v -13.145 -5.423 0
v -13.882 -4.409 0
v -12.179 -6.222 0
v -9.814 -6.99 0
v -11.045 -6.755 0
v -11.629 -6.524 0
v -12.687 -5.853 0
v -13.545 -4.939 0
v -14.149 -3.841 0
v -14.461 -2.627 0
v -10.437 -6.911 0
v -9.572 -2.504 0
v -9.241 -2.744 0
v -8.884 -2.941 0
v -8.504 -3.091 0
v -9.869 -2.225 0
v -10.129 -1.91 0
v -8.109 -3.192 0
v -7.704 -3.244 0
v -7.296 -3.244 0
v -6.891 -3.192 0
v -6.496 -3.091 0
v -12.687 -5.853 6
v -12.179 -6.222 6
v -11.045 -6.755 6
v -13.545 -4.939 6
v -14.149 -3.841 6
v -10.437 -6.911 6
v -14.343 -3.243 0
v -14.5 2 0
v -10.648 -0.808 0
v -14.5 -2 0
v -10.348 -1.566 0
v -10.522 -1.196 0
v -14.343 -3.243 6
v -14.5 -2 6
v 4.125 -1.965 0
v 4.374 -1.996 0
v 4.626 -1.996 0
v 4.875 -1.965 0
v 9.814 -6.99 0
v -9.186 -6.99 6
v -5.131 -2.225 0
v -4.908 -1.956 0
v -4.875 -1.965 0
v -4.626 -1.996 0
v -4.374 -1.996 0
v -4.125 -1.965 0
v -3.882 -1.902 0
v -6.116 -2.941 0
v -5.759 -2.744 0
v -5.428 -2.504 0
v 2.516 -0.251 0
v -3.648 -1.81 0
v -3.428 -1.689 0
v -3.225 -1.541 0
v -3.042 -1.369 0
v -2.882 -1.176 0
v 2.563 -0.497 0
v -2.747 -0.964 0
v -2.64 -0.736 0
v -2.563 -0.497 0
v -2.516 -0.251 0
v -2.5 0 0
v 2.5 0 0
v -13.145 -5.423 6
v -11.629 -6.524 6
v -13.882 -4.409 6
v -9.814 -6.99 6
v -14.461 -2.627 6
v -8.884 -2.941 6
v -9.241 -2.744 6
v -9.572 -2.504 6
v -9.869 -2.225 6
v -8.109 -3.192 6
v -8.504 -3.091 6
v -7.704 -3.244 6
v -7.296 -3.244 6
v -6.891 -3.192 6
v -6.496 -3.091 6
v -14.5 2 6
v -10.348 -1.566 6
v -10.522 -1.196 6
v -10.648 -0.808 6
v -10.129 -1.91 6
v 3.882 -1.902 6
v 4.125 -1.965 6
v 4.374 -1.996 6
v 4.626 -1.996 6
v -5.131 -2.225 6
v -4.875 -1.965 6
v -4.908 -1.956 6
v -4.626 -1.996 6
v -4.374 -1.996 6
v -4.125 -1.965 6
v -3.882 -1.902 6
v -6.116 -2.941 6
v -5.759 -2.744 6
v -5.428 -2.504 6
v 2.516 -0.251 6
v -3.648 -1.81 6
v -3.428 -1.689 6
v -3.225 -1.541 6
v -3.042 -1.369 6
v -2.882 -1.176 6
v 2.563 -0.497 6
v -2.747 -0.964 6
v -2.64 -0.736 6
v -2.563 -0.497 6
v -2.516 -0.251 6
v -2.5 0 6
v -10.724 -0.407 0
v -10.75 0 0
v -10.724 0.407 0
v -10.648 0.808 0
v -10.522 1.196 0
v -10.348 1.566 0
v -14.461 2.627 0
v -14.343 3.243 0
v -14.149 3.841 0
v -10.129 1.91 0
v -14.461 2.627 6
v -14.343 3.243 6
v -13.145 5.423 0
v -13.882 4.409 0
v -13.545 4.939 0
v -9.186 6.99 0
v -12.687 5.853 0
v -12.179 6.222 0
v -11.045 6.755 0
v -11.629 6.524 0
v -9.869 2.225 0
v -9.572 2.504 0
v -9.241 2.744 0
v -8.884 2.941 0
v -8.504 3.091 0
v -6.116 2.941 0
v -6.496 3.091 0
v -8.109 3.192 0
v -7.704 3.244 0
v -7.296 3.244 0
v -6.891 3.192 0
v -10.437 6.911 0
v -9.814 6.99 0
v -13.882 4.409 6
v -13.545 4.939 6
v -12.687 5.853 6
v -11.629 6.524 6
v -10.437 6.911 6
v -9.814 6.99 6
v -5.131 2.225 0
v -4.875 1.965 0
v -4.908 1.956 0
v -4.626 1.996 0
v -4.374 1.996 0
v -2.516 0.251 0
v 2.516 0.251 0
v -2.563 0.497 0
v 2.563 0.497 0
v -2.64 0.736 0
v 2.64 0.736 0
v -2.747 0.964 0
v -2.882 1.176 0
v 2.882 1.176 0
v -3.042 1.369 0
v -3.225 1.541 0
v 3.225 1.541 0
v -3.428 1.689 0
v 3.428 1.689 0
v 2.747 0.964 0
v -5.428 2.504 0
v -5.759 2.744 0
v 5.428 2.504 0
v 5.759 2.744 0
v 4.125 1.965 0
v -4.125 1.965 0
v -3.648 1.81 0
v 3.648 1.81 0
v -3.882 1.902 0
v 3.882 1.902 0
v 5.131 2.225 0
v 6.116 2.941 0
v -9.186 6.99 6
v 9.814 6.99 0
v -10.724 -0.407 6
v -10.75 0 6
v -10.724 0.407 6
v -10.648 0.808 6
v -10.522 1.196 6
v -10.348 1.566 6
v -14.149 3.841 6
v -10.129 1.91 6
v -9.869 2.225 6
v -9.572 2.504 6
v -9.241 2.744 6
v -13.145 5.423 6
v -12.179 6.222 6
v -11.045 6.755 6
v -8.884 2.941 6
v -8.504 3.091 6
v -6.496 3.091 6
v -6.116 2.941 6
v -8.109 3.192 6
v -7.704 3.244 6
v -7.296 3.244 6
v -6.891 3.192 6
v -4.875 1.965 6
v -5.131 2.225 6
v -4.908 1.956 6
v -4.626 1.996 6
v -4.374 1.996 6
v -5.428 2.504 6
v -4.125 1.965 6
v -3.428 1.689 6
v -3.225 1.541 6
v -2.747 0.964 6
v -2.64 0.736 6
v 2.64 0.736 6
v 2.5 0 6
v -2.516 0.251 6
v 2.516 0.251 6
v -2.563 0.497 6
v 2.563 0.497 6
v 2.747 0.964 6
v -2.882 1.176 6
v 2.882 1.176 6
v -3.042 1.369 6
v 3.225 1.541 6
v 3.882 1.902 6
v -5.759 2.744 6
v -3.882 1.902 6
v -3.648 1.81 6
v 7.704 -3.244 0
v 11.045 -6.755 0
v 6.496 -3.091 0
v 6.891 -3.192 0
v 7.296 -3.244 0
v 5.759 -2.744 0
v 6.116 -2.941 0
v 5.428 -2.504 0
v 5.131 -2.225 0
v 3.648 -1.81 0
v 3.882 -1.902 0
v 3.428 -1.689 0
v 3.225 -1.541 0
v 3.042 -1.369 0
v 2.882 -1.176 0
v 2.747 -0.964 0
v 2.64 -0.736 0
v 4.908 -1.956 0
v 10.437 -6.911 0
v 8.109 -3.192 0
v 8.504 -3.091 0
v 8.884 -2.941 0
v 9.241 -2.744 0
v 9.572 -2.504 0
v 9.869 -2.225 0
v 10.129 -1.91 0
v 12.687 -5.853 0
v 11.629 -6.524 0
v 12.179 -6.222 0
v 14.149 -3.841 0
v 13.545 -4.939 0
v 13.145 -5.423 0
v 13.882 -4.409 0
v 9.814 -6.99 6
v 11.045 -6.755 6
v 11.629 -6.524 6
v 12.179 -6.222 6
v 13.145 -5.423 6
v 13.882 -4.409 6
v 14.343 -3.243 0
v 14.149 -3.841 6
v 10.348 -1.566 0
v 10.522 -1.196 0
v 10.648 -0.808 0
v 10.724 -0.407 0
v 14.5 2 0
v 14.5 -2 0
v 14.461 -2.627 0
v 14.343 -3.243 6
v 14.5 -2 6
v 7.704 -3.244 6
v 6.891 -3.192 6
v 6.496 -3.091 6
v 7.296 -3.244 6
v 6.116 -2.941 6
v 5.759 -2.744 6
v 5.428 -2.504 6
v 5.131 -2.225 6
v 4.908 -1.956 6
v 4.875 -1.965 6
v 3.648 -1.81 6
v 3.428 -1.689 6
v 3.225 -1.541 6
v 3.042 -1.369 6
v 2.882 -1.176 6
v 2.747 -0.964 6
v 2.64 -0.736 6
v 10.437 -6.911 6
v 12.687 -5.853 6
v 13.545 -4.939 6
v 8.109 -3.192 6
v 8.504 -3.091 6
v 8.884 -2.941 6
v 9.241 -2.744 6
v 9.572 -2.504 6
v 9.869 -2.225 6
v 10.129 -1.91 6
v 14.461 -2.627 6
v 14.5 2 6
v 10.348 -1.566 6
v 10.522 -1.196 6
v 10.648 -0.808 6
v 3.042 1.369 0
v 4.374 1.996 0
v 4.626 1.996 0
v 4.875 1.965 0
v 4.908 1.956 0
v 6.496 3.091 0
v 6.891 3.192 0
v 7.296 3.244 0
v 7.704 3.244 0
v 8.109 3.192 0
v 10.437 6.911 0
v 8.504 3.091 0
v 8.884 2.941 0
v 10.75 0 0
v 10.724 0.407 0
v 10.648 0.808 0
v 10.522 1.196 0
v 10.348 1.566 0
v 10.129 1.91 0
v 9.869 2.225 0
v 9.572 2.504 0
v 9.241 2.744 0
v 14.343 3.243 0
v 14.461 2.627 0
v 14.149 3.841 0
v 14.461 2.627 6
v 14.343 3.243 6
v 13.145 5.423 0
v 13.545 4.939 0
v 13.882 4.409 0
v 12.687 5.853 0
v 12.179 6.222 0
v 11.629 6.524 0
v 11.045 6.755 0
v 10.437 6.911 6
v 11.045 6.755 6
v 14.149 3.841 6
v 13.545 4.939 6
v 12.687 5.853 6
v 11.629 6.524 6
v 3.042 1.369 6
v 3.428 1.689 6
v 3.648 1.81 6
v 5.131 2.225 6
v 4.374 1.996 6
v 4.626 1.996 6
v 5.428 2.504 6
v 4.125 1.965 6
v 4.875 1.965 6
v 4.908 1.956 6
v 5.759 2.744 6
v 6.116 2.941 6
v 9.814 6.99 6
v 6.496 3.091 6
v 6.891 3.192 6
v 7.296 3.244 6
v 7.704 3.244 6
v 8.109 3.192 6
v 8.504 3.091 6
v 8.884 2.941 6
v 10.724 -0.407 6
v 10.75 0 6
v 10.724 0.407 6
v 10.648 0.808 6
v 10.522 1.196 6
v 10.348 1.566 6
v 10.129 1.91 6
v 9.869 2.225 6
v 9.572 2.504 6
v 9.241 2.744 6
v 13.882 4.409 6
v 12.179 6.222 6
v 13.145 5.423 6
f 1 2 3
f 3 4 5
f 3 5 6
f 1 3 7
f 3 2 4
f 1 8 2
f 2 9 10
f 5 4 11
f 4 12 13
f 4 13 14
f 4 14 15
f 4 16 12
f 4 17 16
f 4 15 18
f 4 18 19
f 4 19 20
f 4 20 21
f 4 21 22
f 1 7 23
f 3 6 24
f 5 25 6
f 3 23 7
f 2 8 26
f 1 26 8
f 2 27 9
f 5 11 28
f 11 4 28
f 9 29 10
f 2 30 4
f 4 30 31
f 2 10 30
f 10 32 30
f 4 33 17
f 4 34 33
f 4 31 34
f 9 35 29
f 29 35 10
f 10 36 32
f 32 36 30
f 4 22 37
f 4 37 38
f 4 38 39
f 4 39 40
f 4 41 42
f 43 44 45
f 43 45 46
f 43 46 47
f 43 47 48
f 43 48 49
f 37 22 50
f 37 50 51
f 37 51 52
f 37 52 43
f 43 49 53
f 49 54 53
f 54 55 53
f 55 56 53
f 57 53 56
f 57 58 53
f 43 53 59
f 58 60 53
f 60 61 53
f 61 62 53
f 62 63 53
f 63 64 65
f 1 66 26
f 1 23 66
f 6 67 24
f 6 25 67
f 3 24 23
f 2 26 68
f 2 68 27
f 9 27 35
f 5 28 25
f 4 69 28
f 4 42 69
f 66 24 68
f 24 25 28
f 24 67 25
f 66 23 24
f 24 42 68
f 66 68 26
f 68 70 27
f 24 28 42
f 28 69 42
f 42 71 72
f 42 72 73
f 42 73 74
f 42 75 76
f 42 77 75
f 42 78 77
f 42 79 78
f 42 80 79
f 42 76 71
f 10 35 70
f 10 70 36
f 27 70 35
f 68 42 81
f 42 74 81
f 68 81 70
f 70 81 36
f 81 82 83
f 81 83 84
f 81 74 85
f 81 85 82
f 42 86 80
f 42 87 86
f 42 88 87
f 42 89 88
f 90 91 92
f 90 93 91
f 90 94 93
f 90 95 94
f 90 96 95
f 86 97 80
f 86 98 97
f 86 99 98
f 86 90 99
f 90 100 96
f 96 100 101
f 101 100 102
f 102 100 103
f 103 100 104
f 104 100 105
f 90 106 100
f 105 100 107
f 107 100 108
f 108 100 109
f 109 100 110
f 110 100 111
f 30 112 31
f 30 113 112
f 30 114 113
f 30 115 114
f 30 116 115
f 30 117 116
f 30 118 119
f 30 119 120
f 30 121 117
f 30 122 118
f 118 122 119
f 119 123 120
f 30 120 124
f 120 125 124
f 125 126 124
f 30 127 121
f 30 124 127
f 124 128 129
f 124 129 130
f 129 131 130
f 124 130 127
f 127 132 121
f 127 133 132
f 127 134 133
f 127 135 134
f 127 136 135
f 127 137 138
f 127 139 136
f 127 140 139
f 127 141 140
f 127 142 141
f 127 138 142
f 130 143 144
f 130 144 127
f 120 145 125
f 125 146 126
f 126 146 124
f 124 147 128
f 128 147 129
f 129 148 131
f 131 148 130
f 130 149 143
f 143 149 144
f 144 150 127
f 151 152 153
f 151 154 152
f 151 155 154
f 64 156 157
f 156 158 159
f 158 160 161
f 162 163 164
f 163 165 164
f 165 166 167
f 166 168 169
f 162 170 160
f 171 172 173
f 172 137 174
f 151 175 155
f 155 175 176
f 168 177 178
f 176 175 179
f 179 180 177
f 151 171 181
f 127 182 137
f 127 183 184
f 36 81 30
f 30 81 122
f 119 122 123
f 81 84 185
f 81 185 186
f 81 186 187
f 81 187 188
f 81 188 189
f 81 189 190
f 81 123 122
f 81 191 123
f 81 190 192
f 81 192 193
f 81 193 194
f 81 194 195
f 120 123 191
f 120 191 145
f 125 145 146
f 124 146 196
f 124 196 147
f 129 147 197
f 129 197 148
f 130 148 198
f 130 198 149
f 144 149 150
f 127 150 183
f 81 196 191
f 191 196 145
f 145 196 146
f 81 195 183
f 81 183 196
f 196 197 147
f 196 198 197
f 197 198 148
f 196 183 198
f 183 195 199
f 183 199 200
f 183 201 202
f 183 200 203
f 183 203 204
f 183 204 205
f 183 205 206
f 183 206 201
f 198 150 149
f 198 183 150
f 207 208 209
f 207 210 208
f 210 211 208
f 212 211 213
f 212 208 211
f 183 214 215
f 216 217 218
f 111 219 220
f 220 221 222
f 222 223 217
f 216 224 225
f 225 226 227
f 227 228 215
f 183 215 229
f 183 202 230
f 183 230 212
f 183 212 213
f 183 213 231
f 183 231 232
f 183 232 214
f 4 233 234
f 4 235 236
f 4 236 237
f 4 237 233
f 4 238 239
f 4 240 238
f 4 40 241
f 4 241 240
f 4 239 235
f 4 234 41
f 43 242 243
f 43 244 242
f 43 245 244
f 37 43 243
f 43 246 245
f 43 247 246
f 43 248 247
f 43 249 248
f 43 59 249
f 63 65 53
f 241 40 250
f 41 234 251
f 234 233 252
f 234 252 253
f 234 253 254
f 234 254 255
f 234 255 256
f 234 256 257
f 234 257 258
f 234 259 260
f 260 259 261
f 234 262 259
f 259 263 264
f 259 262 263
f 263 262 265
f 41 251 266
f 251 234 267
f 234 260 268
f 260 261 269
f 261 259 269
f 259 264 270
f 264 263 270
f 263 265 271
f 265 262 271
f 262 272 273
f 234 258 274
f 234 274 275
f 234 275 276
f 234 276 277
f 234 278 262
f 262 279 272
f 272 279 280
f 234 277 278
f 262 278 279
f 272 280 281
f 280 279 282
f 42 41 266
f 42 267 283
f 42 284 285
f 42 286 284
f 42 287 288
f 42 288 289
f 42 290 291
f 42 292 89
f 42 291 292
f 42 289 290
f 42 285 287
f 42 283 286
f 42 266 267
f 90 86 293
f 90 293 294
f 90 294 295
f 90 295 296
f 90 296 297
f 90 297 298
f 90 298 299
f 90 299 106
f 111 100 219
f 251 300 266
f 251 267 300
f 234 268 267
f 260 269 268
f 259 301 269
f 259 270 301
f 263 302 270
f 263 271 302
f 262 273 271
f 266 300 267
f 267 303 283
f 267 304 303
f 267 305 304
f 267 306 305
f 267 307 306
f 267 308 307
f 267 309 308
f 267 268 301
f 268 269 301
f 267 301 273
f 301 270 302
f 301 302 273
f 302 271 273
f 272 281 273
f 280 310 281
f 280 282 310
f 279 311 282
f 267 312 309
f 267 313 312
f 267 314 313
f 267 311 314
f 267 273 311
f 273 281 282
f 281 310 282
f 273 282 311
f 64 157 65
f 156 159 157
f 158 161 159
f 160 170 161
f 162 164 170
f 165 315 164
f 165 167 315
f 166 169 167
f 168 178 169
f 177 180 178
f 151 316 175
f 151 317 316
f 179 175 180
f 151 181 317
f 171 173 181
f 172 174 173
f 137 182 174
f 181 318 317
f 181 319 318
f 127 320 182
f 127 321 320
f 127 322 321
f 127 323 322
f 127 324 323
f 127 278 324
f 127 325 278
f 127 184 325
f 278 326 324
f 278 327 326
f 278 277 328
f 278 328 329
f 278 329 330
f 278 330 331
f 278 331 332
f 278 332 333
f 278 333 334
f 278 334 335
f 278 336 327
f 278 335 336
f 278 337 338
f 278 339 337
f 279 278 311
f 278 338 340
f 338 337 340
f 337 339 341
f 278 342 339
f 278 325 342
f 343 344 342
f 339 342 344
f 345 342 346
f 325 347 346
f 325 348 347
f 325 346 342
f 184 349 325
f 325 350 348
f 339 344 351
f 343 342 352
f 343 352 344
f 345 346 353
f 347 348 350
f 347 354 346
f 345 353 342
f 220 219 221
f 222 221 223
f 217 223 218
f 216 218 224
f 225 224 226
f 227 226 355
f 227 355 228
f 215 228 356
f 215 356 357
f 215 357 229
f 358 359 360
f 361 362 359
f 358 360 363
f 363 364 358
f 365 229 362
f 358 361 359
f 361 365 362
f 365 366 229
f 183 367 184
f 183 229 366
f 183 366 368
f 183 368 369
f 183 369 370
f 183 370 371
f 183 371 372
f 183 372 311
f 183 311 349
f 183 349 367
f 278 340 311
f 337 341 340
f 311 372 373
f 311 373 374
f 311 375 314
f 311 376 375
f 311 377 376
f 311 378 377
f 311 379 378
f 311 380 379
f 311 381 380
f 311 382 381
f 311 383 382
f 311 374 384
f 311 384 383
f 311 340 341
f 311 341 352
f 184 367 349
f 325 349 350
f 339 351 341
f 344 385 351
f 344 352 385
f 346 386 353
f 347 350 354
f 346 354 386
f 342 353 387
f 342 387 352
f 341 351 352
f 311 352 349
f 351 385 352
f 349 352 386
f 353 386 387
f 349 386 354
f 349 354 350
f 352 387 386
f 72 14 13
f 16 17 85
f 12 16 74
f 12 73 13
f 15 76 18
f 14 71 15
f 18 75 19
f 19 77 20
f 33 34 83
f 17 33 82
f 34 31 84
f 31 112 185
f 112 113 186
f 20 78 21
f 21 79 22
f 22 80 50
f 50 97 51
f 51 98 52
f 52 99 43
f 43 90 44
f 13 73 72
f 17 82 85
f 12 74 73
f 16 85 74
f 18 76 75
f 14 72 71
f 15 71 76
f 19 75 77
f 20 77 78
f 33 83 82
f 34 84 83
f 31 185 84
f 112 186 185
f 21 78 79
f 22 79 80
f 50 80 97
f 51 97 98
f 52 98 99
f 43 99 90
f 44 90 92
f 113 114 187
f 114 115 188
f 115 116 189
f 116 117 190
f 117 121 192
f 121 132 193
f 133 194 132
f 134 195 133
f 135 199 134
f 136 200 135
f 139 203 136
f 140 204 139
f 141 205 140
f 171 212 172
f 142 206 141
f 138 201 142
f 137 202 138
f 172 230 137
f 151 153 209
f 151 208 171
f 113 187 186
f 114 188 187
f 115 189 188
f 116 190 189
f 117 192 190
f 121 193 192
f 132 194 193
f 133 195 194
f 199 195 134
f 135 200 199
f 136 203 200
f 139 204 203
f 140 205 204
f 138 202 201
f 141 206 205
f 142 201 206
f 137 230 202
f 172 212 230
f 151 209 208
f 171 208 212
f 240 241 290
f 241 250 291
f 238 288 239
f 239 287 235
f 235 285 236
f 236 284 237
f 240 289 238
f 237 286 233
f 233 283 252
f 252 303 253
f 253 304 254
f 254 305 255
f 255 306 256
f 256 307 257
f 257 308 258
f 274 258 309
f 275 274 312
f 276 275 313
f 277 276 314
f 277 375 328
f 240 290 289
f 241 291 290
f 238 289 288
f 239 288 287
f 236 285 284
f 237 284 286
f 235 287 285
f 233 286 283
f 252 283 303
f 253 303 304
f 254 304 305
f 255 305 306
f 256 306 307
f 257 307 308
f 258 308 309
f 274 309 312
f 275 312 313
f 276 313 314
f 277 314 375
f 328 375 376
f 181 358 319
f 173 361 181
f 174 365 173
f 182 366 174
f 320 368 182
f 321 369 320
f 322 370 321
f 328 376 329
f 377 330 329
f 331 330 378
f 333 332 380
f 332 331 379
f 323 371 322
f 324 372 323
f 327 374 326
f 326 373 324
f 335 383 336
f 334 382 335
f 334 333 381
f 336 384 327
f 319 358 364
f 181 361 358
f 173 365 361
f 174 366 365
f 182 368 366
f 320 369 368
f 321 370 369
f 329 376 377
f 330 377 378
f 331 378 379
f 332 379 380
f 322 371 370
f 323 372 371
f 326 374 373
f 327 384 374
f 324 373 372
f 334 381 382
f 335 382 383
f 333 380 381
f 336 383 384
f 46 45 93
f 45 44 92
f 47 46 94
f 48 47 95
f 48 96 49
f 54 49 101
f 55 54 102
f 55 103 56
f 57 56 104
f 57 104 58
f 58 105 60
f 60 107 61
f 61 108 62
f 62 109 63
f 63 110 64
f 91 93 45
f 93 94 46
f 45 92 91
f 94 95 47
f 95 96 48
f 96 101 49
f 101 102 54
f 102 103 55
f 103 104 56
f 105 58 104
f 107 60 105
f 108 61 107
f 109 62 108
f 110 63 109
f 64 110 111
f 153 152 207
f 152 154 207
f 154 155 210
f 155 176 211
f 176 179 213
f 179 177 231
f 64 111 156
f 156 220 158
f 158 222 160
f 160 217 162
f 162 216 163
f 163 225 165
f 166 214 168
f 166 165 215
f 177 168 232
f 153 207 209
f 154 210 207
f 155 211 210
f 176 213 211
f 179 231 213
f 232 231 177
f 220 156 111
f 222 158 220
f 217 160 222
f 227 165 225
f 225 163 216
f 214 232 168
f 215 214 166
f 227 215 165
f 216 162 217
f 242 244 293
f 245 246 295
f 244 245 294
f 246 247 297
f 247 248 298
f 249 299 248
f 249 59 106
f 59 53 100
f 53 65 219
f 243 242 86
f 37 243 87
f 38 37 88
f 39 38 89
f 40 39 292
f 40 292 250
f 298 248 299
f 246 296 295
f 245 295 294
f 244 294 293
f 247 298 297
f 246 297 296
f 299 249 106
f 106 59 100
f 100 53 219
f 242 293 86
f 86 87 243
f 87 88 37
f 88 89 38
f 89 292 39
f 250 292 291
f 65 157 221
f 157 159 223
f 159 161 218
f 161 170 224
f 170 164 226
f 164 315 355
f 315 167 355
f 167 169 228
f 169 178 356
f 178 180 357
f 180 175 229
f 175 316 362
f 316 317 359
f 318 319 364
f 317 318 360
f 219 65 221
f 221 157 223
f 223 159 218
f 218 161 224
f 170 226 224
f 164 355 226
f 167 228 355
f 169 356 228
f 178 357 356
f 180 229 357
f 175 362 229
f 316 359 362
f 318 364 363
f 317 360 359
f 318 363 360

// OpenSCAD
$fn = 50;

difference() {
	union() {
		hull() {
			translate(v = [-9.5, 2.0, 0]) {
				cylinder(h = 6, r = 5);
			}
			translate(v = [9.5, 2.0, 0]) {
				cylinder(h = 6, r = 5);
			}
			translate(v = [-9.5, -2.0, 0]) {
				cylinder(h = 6, r = 5);
			}
			translate(v = [9.5, -2.0, 0]) {
				cylinder(h = 6, r = 5);
			}
		}
	}
	union() {
		translate(v = [-7.5, 0.0, -100.0]) {
			cylinder(h = 200, r = 3.25);
		}
		translate(v = [7.5, 0.0, -100.0]) {
			cylinder(h = 200, r = 3.25);
		}
		translate(v = [-7.5, 0.0, -100.0]) {
			cylinder(h = 200, r = 1.8);
		}
		translate(v = [7.5, 0.0, -100.0]) {
			cylinder(h = 200, r = 1.8);
		}
		translate(v = [-4.5, 0, 0.0]) {
			cylinder(h = 6, r = 2.0);
		}
		translate(v = [4.5, 0, 0.0]) {
			cylinder(h = 6, r = 2.0);
		}
	}
}
